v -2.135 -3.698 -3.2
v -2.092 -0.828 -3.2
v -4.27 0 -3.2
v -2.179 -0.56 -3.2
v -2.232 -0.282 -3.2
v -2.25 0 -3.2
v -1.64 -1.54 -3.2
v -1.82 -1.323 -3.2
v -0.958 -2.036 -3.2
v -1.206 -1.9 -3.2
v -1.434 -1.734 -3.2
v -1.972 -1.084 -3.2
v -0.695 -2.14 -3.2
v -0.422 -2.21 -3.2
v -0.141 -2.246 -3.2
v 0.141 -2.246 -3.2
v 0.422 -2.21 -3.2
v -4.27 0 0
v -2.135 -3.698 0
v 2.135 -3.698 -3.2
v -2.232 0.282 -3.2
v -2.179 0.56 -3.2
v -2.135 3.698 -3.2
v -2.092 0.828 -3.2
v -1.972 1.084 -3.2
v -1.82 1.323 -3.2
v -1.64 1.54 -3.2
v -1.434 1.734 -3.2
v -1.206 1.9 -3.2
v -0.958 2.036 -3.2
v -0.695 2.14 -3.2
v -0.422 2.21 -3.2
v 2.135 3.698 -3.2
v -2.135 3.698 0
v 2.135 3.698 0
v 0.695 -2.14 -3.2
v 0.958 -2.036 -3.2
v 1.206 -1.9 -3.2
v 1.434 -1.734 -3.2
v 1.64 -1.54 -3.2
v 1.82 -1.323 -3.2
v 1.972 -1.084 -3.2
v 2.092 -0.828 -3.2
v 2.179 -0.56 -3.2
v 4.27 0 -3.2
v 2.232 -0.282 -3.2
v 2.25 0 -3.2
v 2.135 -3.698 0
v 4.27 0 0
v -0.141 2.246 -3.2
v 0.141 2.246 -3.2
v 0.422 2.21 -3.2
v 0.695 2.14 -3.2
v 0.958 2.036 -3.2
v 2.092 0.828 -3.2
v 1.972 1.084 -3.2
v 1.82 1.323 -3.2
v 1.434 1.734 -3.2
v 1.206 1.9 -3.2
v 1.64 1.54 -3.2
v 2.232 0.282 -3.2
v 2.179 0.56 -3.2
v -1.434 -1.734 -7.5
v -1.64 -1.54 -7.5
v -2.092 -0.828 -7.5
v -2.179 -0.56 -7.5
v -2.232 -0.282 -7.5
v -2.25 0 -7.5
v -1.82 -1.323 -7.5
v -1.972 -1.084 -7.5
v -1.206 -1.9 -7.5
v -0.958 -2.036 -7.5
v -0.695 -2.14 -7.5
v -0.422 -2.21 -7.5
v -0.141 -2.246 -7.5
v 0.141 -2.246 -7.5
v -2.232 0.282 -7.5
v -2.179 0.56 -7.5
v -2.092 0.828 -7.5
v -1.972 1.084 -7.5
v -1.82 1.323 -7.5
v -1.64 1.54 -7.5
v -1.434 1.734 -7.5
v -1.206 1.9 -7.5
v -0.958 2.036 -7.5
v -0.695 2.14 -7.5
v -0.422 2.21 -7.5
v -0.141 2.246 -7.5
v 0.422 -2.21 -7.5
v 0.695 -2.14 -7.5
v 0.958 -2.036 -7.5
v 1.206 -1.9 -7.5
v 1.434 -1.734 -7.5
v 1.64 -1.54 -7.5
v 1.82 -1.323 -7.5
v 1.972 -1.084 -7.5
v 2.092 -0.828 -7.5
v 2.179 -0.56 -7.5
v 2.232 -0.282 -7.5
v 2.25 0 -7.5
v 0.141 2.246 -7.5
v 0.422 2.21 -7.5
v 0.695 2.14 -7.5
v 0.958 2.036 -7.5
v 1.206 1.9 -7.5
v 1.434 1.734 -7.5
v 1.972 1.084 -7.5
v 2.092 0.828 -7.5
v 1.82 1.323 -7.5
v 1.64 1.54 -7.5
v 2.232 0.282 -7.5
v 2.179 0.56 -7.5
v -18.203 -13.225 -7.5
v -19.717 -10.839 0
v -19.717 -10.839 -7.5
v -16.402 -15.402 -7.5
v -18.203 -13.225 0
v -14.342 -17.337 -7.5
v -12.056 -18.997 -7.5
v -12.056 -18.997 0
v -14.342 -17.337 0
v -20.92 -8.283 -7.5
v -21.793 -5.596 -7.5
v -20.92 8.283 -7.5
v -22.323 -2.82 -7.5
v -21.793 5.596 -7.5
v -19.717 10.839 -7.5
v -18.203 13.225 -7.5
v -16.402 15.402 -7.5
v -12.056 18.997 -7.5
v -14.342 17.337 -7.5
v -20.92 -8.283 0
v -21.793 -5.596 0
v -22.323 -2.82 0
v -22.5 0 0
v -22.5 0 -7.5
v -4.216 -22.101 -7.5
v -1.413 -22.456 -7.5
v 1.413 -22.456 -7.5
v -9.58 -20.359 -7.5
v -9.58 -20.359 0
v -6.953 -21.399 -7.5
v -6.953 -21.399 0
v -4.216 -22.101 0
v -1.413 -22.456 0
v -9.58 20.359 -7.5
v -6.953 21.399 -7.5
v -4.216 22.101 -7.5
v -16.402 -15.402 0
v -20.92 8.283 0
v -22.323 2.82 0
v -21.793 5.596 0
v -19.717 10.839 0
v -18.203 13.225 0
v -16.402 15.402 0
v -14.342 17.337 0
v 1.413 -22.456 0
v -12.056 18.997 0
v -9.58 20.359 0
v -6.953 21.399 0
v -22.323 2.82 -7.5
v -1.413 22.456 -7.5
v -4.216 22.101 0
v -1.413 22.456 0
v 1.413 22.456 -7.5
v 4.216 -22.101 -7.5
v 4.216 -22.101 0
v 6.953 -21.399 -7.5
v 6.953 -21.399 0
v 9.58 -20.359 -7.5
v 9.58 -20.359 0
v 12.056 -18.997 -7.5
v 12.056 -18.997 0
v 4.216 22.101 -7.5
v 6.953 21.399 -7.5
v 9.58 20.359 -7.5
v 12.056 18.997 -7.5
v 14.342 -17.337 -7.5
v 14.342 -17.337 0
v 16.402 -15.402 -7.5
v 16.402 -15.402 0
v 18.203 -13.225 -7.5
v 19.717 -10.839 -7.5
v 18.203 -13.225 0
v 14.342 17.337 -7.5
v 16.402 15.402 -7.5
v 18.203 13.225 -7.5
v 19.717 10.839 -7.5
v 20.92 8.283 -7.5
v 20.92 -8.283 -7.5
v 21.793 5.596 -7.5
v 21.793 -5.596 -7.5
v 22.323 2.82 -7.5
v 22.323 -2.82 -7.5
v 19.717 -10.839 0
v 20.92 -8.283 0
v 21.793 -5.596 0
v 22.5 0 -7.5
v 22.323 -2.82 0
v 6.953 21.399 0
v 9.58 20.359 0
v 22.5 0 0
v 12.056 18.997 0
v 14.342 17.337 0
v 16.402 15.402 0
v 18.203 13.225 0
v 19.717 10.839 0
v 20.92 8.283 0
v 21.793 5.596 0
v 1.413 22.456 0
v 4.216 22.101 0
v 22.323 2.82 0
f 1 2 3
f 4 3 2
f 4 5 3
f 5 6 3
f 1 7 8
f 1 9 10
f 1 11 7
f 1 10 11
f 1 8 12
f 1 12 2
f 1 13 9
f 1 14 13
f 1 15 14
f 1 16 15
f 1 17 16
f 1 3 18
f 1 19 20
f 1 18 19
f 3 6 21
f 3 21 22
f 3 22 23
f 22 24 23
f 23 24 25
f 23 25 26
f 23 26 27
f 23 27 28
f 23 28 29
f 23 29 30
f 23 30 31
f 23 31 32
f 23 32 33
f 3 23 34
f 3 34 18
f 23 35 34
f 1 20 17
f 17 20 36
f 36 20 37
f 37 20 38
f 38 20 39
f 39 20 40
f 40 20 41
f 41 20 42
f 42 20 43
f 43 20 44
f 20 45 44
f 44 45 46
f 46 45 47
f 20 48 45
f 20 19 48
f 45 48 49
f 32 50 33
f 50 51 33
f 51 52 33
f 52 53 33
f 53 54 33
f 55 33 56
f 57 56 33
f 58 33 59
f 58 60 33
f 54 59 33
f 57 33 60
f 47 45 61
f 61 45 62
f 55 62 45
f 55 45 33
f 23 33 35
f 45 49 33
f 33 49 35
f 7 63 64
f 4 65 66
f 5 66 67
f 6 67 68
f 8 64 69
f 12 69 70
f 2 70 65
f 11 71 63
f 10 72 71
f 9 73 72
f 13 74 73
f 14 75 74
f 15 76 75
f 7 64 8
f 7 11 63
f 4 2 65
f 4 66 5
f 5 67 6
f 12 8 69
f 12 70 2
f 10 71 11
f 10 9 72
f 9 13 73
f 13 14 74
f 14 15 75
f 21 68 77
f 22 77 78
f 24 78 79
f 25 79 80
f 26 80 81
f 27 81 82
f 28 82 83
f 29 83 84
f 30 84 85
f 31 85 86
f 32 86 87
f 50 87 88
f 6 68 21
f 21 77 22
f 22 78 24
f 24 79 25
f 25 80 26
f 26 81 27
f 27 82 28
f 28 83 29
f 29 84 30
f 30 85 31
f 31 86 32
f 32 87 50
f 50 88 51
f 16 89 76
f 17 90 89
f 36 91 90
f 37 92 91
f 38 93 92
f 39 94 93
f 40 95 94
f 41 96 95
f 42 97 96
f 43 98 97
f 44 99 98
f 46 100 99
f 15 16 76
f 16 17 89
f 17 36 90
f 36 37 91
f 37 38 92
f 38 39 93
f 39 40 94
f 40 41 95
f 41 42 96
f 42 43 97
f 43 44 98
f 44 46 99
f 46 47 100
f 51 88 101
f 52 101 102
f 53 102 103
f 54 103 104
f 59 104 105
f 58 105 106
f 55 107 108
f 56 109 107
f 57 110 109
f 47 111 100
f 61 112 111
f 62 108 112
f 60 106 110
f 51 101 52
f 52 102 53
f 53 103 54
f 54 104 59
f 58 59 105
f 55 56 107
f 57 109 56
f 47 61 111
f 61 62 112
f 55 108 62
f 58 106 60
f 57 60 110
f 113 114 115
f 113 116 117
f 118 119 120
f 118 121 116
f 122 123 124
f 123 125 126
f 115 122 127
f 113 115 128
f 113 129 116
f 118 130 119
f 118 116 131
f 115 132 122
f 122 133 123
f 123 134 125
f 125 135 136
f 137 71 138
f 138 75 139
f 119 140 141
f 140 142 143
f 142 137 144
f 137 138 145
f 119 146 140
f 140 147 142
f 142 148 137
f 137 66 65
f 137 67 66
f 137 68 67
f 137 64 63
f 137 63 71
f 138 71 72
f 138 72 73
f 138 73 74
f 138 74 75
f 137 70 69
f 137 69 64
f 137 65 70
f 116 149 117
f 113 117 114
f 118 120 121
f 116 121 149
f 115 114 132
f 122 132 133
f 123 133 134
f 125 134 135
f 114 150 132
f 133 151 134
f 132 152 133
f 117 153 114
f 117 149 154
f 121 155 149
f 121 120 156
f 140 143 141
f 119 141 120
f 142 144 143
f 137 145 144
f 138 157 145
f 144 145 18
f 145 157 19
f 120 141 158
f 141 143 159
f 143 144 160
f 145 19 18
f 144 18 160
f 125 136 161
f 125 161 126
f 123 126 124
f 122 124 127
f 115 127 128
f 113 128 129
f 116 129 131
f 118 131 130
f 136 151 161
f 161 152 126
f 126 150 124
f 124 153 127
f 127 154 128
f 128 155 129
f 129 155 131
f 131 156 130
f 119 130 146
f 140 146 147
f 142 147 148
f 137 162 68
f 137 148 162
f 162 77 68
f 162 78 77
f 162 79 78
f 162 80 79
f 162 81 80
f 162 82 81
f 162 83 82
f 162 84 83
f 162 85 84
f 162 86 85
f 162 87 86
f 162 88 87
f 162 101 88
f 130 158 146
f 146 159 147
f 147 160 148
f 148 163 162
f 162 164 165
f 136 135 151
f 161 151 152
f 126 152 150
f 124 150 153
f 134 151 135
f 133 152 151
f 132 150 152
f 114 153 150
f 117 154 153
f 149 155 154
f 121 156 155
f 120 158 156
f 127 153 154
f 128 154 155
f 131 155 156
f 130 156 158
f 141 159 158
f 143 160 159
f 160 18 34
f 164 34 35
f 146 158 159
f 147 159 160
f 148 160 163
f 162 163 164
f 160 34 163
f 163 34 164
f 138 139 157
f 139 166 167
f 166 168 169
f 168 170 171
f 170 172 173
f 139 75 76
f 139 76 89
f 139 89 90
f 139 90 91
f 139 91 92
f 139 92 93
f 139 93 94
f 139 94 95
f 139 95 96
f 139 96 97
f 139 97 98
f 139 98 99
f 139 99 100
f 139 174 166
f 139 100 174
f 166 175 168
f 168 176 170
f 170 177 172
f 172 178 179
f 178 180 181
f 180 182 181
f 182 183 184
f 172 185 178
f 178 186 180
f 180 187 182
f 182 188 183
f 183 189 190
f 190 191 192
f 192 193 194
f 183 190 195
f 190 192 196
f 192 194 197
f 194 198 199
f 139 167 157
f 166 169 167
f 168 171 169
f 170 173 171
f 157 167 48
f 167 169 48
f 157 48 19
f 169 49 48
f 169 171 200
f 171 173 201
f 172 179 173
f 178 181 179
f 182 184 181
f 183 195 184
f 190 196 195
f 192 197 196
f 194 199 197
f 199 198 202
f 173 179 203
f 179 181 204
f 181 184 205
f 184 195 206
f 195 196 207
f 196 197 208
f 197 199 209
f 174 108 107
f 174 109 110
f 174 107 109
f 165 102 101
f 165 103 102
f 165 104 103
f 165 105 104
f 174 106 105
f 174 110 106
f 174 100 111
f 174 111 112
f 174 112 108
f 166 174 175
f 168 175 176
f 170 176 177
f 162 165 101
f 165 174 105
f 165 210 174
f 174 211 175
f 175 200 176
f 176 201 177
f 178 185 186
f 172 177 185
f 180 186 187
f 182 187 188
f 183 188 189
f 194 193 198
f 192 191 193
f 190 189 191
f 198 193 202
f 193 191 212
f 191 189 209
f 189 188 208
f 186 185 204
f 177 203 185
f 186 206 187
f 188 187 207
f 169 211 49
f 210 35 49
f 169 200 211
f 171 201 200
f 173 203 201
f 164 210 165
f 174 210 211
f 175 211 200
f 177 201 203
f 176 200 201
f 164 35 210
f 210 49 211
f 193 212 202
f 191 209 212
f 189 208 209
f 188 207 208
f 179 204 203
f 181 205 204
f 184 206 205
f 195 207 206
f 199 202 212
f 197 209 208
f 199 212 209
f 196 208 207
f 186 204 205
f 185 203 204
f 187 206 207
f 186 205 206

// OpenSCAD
$fn = 50;

difference() {
	union() {
		translate(v = [0, 0, -7.5]) {
			cylinder(h = 7.5, r = 22.5);
		}
	}
	union() {
		translate(v = [0, 0, 0]) {
			rotate(a = [0, 0, 0]) {
				difference() {
					union() {
						translate(v = [0, 0, -3.2]) {
							linear_extrude(height = 3.2) {
								polygon(points = [[4.2698, 0.0], [2.1349000000000005, 3.697755269078796], [-2.134899999999999, 3.6977552690787965], [-4.2698, 5.228996902999369e-16], [-2.134900000000002, -3.6977552690787956], [2.1348999999999974, -3.697755269078798]]);
							}
						}
					}
					union();
				}
			}
		}
		#translate(v = [0, 0, -100.0]) {
			cylinder(h = 200, r = 2.25);
		}
	}
}
